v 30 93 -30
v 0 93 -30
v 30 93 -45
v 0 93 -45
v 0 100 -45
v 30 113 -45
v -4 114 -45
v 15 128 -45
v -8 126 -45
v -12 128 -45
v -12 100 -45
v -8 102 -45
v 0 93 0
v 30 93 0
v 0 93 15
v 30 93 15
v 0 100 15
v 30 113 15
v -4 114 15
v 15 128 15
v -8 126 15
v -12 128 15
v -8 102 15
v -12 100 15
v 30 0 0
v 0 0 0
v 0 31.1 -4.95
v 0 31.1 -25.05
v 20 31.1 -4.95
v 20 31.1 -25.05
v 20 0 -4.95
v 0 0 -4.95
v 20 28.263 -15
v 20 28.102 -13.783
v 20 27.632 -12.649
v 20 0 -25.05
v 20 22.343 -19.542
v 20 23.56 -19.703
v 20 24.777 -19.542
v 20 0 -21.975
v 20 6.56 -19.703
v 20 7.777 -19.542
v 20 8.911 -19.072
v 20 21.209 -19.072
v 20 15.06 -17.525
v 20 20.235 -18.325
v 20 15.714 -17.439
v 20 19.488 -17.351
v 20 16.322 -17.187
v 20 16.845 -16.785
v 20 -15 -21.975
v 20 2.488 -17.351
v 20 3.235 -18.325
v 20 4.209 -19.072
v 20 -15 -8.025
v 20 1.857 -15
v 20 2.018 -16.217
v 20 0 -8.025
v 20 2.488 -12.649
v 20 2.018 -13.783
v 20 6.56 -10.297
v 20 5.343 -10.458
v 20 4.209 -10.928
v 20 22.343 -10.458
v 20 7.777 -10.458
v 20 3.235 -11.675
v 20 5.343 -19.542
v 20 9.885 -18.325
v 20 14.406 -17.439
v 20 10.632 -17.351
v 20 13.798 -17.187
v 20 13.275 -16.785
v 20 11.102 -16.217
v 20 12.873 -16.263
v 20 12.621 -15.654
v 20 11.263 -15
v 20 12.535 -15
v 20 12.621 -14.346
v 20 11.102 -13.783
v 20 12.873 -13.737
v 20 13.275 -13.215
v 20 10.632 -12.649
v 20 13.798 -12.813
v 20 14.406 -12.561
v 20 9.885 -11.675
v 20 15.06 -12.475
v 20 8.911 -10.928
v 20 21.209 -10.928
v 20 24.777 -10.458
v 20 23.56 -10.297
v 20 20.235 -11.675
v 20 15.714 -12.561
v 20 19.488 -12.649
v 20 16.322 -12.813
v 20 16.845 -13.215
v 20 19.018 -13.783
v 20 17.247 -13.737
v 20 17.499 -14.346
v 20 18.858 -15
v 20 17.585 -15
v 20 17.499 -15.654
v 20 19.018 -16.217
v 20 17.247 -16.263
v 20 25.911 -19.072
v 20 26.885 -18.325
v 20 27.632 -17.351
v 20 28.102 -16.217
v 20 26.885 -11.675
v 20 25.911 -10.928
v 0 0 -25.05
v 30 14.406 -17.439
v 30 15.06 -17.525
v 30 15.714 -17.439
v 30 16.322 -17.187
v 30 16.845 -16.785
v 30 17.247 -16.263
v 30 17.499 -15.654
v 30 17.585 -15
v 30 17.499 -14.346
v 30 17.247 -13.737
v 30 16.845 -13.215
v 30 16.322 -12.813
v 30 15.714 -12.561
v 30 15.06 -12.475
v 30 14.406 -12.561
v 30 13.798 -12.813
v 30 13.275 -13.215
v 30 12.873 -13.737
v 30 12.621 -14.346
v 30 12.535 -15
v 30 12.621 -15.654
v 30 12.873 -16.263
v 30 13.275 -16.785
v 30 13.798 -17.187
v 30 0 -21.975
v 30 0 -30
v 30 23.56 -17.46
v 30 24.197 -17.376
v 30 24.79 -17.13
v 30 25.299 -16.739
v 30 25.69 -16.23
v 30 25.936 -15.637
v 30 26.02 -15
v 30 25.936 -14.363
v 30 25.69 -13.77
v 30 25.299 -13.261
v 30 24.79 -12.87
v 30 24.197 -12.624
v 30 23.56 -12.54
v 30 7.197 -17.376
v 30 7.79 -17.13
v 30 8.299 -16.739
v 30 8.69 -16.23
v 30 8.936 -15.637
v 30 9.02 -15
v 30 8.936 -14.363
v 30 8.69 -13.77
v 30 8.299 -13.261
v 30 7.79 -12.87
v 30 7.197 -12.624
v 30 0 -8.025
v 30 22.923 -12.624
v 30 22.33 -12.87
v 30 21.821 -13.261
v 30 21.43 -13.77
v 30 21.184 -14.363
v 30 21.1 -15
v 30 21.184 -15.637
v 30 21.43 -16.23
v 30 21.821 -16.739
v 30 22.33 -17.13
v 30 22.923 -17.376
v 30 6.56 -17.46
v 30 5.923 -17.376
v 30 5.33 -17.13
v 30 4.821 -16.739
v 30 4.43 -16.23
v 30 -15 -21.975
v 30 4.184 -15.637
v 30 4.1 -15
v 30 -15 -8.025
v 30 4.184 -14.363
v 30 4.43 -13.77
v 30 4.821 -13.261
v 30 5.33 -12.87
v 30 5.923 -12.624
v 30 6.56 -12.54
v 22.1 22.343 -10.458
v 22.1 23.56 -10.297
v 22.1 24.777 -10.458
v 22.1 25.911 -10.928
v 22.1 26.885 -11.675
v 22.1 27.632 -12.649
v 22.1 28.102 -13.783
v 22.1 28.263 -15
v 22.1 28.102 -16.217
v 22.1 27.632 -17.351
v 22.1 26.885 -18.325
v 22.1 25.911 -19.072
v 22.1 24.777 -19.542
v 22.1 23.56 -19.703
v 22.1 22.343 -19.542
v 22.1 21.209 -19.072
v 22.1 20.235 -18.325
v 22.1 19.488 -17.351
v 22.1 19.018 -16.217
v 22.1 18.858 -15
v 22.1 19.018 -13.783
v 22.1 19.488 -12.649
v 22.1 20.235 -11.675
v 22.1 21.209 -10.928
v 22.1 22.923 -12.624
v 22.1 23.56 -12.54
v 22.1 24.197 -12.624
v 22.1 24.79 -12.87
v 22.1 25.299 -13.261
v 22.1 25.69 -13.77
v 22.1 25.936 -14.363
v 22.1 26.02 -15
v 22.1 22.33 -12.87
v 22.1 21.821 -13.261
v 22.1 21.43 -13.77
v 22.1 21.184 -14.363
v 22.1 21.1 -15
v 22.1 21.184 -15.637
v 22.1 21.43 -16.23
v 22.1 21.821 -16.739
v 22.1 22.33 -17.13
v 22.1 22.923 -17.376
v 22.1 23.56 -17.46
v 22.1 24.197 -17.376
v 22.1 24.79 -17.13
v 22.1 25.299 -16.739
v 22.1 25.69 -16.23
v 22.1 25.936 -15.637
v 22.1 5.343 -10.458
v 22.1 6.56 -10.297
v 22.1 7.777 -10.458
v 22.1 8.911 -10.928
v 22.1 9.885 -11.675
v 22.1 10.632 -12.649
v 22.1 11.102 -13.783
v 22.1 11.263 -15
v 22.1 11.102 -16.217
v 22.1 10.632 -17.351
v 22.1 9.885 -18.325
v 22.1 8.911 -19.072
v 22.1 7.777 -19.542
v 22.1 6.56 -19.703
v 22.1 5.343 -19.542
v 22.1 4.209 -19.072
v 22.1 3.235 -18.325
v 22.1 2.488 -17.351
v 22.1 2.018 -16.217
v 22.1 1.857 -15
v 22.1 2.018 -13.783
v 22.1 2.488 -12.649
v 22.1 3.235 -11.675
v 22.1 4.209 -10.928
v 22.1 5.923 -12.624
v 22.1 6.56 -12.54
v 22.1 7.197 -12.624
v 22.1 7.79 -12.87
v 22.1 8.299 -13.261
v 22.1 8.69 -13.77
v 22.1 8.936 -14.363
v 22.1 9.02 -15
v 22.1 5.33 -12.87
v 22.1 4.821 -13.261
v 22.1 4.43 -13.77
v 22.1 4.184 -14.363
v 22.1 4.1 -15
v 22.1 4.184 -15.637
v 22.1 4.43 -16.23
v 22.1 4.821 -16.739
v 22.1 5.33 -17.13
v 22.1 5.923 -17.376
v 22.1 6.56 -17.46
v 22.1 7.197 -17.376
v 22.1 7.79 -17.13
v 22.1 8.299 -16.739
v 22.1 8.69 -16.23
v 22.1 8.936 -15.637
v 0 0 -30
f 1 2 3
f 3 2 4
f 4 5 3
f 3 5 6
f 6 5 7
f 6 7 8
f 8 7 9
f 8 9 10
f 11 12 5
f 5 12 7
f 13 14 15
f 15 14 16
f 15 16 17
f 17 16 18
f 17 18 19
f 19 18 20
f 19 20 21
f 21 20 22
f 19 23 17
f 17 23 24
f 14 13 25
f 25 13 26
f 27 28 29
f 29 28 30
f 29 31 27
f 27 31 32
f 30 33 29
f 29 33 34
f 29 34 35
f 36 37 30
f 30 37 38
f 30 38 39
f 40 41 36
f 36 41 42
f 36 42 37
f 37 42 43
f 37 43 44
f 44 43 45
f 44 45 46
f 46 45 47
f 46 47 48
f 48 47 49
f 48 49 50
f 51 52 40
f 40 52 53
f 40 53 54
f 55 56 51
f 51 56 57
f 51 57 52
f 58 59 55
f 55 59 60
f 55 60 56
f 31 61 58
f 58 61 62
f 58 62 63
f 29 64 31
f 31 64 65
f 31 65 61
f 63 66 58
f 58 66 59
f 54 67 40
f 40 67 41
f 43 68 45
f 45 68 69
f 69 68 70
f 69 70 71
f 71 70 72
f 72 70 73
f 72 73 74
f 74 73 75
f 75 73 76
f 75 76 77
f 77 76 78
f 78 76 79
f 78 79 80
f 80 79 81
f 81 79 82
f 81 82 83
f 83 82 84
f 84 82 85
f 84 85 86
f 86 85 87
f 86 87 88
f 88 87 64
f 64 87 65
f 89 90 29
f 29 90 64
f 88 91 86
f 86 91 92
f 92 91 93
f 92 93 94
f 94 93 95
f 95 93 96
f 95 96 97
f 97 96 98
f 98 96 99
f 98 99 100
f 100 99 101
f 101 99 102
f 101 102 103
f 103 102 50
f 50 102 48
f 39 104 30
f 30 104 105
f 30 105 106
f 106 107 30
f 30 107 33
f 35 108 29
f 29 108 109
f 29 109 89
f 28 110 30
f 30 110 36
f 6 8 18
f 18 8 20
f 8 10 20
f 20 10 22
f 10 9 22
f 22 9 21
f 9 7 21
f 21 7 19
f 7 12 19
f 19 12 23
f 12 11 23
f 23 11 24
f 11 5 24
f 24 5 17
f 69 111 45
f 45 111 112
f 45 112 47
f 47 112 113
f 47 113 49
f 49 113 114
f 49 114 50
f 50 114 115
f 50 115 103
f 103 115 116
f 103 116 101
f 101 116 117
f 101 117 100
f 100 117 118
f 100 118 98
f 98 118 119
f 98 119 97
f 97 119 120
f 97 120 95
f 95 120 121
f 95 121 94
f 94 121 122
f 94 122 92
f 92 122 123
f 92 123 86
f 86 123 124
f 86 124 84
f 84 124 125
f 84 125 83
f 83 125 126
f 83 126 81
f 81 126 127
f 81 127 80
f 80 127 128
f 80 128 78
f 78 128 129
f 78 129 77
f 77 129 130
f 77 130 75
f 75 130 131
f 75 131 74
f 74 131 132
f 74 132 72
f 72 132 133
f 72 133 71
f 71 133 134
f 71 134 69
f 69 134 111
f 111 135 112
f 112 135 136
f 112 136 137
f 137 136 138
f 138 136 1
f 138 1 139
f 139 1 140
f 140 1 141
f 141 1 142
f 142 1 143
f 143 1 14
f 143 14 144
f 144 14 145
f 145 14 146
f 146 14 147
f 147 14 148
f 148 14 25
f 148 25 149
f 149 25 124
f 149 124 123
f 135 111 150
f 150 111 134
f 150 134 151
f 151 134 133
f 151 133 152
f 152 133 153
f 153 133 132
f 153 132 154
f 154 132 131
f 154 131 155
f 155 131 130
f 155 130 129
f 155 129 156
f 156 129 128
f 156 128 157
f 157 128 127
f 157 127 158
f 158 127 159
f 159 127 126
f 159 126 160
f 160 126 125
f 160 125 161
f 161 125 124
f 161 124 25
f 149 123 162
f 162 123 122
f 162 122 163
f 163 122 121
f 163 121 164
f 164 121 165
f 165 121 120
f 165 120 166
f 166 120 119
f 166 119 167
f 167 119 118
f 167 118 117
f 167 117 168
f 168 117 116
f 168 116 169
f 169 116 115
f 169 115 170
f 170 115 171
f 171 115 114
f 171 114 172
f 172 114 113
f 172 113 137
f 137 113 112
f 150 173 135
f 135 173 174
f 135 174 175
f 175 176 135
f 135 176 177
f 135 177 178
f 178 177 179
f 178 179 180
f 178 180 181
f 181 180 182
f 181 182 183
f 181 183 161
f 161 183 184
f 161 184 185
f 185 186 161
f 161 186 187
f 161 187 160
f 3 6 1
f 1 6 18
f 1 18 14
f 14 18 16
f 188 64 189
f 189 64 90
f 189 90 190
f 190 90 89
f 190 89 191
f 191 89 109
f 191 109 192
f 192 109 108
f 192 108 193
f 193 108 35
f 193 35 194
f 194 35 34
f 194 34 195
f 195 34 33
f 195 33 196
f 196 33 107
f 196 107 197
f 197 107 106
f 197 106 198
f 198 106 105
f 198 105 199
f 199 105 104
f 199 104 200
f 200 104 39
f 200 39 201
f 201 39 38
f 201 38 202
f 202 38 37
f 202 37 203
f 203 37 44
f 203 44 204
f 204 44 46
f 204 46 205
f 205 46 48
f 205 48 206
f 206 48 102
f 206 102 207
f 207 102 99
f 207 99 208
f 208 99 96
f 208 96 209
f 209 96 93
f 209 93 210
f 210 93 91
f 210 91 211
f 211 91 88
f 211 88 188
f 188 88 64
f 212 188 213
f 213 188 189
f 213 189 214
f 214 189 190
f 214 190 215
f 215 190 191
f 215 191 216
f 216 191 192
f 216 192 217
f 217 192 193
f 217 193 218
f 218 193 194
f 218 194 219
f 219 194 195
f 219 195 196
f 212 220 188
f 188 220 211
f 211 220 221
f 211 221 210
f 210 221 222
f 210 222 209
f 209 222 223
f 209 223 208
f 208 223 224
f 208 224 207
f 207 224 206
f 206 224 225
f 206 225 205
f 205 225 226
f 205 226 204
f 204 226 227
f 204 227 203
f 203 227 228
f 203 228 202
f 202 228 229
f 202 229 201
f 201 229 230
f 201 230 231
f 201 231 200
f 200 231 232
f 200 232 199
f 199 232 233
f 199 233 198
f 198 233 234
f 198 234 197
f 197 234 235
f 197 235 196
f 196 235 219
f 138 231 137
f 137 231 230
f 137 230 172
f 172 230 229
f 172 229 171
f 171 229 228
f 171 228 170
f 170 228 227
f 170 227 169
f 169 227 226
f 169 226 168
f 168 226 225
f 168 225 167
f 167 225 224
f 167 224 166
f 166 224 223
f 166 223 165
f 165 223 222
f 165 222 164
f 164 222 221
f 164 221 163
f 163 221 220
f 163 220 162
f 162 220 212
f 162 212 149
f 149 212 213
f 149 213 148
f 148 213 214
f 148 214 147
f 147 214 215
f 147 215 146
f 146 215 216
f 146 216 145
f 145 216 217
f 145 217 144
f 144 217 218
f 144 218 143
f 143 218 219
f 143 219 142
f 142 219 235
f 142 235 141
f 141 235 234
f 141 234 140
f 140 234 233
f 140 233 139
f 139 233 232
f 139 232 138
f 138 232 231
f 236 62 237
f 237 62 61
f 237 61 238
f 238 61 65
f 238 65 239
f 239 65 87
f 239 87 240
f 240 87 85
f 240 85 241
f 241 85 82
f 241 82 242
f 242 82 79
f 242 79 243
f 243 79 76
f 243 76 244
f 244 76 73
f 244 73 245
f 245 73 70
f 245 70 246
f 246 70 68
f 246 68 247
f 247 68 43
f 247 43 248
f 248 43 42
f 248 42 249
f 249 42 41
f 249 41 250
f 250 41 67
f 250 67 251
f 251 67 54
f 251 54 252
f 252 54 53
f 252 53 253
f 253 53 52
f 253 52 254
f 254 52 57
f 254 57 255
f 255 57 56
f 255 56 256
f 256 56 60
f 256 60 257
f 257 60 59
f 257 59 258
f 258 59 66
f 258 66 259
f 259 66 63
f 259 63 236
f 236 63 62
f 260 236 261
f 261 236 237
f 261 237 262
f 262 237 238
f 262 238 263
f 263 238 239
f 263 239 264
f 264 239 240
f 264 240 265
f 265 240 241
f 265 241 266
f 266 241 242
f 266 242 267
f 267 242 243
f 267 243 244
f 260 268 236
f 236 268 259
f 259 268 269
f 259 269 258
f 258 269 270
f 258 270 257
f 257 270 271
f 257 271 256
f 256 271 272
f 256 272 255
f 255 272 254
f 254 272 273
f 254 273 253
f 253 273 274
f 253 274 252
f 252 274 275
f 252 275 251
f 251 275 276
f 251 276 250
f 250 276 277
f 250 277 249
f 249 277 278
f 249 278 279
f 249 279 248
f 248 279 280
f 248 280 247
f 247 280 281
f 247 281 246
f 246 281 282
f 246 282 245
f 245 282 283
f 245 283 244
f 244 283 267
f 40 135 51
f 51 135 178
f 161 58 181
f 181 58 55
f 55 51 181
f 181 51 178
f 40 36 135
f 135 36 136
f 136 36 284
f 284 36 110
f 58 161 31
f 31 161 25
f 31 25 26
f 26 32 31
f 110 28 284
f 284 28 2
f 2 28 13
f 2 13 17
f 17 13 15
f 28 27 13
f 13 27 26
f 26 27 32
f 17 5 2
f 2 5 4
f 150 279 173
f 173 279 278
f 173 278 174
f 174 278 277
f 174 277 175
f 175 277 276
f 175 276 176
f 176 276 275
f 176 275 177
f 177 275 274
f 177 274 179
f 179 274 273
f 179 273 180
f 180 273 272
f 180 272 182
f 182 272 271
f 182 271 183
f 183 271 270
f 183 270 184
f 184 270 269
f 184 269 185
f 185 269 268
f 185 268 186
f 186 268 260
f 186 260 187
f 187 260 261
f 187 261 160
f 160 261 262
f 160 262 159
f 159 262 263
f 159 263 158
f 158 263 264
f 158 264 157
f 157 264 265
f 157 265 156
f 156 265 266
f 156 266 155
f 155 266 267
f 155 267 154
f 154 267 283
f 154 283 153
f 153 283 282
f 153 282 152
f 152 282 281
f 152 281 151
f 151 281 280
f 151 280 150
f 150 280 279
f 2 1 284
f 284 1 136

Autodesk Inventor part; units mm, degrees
ref_plane "YZ Plane" through (0, 0, 0) normal (1, 0, 0) x (0, 1, 0)
ref_plane "XZ Plane" through (0, 0, 0) normal (0, 1, 0) x (-1, 0, 0)
sketch "Sketch1" plane through (0, 0, 0) normal (0, 0, 1) x (1, 0, 0)
  line L0 (0, 0) -> (25, 0)
  line L1 (25, 0) -> (25, 40)
  line L2 (25, 40) -> (0, 40)
  line L3 (0, 40) -> (0, 0)
  dimension "d1" = 25
  dimension "d2" = 40
  dimension "d3" = 25
extrude "Extrusion1" add sketch "Sketch1" against normal blind 30
sketch "Sketch2" plane through (25, 0, 0) normal (1, 0, 0) x (0, 0, -1)
  line L0 (0, 0) -> (30, 0) projected
  circle A0 centre (15, 6.56) radius 2.46
extrude "Extrusion2" cut sketch "Sketch2" against normal blind 30
sketch "Sketch3" plane through (0, 0, 0) normal (-1, 0, 0) x (0, 0, 1)
  line L0 (0, 0) -> (-30, 0) projected
  line L1 (-25.05, 0) -> (-4.95, 0)
  line L2 (-4.95, 0) -> (-4.95, 33.12)
  line L3 (-4.95, 33.12) -> (-25.05, 33.12)
  line L4 (-25.05, 33.12) -> (-25.05, 0)
  dimension "d11" = 20.1
extrude "Extrusion3" cut sketch "Sketch3" against normal blind 20
sketch "Sketch4" plane through (0, 0, 0) normal (0, -1, 0) x (1, 0, 0)
  line L0 (20, -4.95) -> (20, -25.05) projected
  line L1 (20, -15) -> (25, -15)
  line L2 (25, 0) -> (25, -30) projected
  line L3 (20, -8.025) -> (25, -8.025)
  line L4 (25, -8.025) -> (25, -21.975)
  line L5 (25, -21.975) -> (20, -21.975)
  line L6 (20, -21.975) -> (20, -8.025)
  line L7 (20, -8.025) -> (25, -21.975) construction
  line L8 (25, -8.025) -> (20, -21.975) construction
  line L9 (25, -12.54) -> (25, -17.46) projected
  point P0 (0, 0)
  point P1 (22.5, -15)
  dimension "d14" = 13.95
extrude "Extrusion4" add sketch "Sketch4" along normal blind 15
sketch "Sketch5" plane through (20, 0, 0) normal (-1, 0, 0) x (0, 0, 1)
  circle A0 centre (-15, 6.56) radius 2.46 projected
  circle A1 centre (-15, 6.56) radius 4.7025
  circle A2 centre (-15, 6.56) radius 2.46 projected
  circle A3 centre (-15, 6.56) radius 2.46
  point P0 (0, 0)
  dimension "d17" = 9.405
extrude "Extrusion5" cut sketch "Sketch5" against normal blind 2.1
sketch "Sketch6" plane through (25, 0, 0) normal (1, 0, 0) x (0, 0, -1)
  circle A0 centre (15, 6.56) radius 4.7025 projected
  line L0 (15, 6.56) -> (15, 23.56)
  circle A1 centre (15, 23.56) radius 2.46
  point P0 (0, 0)
  dimension "d20" = 17
  dimension "d21" = 4.92
extrude "Extrusion6" cut sketch "Sketch6" against normal blind 10 contours A1
sketch "Sketch7" plane through (20, 0, 0) normal (-1, 0, 0) x (0, 0, 1)
  circle A0 centre (-15, 23.56) radius 2.46 projected
  circle A1 centre (-15, 23.56) radius 4.7025
  point P0 (0, 0)
  dimension "d24" = 9.405
extrude "Extrusion7" cut sketch "Sketch7" against normal blind 2.1
sketch "Sketch9" plane through (25, 0, 0) normal (1, 0, 0) x (0, 0, -1)
  circle A0 centre (15, 6.56) radius 2.46 projected
  circle A1 centre (15, 6.56) radius 2.46
  circle A2 centre (15, 23.56) radius 2.46 projected
  circle A3 centre (15, 23.56) radius 2.46
  line L0 (30, 40) -> (30, 0) projected
  line L1 (30, 0) -> (30, 40)
  line L2 (30, 40) -> (0, 40)
  line L3 (0, 40) -> (0, 0)
  line L4 (0, 0) -> (8.025, 0) projected
  line L5 (21.975, 0) -> (21.975, -15)
  line L6 (21.975, -15) -> (8.025, -15)
  line L7 (8.025, -15) -> (8.025, 0)
  line L8 (0, 0) -> (8.025, 0)
  line L9 (21.975, 0) -> (30, 0)
extrude "Extrusion8" add sketch "Sketch9" along normal blind 5
sketch "Sketch10" plane through (0, 40, 0) normal (0, 1, 0) x (1, 0, 0)
  line L0 (0, 30) -> (30, 30) projected
  line L1 (30, 0) -> (0, 0) projected
  line L2 (0, 30) -> (30, 30)
  line L3 (30, 30) -> (30, 0)
  line L4 (30, 0) -> (0, 0)
  line L5 (0, 0) -> (0, 30)
extrude "Extrusion9" add sketch "Sketch10" along normal blind 30
sketch "Sketch12" plane through (30, 0, 0) normal (1, 0, 0) x (0, 0, -1)
  circle A0 centre (15, 6.56) radius 2.46 projected
  line L0 (15, 6.56) -> (15, 15.06)
  circle A1 centre (15, 15.06) radius 2.525
  point P0 (0, 0)
  dimension "d31" = 8.5
  dimension "d33" = 5.05
extrude "Extrusion10" cut sketch "Sketch12" against normal blind 30 contours A1
sketch "Sketch14" plane through (0, 0, 0) normal (0, 0, 1) x (1, 0, 0)
  line L0 (30, 70) -> (0, 70) projected
  line L1 (0, 70) -> (0, 85)
  line L2 (30, 0) -> (30, 70) projected
  line L3 (30, 113) -> (30, 70)
  line L4 (30, 105) -> (30, 100)
  line L5 (-12, 128) -> (15, 128)
  line L6 (-8, 126) -> (-12, 128)
  line L7 (-8, 126) -> (-4, 114)
  line L8 (-8, 102) -> (-12, 100)
  line L9 (-8, 102) -> (-4, 114)
  line L10 (30, 113) -> (15, 128)
  line L11 (0, 100) -> (-12, 100)
  line L12 (0, 100) -> (0, 85)
  point P0 (0, 0)
  dimension "d69" = 28
  dimension "d74" = 12
extrude "Extrusion12" add sketch "Sketch14" against normal blind 30
sketch "Sketch15" plane through (0, 0, -25.05) normal (-1, 0, 0) x (0, 0, 1)
  line L0 (0, 33.12) -> (20.1, 33.12) projected
  line L1 (20.1, 33.12) -> (20.1, 0) projected
  line L2 (0, 33.12) -> (20.1, 33.12)
  line L3 (20.1, 33.12) -> (20.1, 31.1)
  line L4 (20.1, 31.1) -> (0, 31.1)
  line L5 (0, 31.1) -> (0, 33.12)
  point P0 (25.05, 0)
  dimension "d57" = 2.02
extrude "Extrusion13" add sketch "Sketch15" against normal blind 20
sketch "Sketch21" plane through (0, 0, 0) normal (0, 0, 1) x (1, 0, 0)
  line L0 (0, 100) -> (-12, 100) projected
  line L1 (0, 100) -> (-12, 100)
  line L2 (-12, 100) -> (-8, 102) projected
  line L3 (-12, 100) -> (-8, 102)
  line L4 (-8, 102) -> (-4, 114) projected
  line L5 (-8, 102) -> (-4, 114)
  line L6 (-4, 114) -> (-8, 126) projected
  line L7 (-4, 114) -> (-8, 126)
  line L8 (-8, 126) -> (-12, 128) projected
  line L9 (-8, 126) -> (-12, 128)
  line L10 (-12, 128) -> (15, 128) projected
  line L11 (-12, 128) -> (15, 128)
  line L12 (15, 128) -> (30, 113) projected
  line L13 (15, 128) -> (30, 113)
  line L14 (30, 113) -> (30, 93)
  line L15 (30, 0) -> (30, 113) projected
  line L16 (30, 93) -> (0, 93)
  line L17 (0, 93) -> (0, 100)
  point P0 (0, 0)
  dimension "d75" = 20
  dimension "d76" = 30
extrude "Extrusion14" add sketch "Sketch21" along normal blind 15
ref_plane "Work Plane1" through (0, 0, -15) normal (0, 0, 1) x (1, 0, 0)
mirror "Mirror1" about plane through (0, 0, -15) normal (0, 0, 1) of "Extrusion14"
properties part number "rec_b_24mm_x_60mm"
